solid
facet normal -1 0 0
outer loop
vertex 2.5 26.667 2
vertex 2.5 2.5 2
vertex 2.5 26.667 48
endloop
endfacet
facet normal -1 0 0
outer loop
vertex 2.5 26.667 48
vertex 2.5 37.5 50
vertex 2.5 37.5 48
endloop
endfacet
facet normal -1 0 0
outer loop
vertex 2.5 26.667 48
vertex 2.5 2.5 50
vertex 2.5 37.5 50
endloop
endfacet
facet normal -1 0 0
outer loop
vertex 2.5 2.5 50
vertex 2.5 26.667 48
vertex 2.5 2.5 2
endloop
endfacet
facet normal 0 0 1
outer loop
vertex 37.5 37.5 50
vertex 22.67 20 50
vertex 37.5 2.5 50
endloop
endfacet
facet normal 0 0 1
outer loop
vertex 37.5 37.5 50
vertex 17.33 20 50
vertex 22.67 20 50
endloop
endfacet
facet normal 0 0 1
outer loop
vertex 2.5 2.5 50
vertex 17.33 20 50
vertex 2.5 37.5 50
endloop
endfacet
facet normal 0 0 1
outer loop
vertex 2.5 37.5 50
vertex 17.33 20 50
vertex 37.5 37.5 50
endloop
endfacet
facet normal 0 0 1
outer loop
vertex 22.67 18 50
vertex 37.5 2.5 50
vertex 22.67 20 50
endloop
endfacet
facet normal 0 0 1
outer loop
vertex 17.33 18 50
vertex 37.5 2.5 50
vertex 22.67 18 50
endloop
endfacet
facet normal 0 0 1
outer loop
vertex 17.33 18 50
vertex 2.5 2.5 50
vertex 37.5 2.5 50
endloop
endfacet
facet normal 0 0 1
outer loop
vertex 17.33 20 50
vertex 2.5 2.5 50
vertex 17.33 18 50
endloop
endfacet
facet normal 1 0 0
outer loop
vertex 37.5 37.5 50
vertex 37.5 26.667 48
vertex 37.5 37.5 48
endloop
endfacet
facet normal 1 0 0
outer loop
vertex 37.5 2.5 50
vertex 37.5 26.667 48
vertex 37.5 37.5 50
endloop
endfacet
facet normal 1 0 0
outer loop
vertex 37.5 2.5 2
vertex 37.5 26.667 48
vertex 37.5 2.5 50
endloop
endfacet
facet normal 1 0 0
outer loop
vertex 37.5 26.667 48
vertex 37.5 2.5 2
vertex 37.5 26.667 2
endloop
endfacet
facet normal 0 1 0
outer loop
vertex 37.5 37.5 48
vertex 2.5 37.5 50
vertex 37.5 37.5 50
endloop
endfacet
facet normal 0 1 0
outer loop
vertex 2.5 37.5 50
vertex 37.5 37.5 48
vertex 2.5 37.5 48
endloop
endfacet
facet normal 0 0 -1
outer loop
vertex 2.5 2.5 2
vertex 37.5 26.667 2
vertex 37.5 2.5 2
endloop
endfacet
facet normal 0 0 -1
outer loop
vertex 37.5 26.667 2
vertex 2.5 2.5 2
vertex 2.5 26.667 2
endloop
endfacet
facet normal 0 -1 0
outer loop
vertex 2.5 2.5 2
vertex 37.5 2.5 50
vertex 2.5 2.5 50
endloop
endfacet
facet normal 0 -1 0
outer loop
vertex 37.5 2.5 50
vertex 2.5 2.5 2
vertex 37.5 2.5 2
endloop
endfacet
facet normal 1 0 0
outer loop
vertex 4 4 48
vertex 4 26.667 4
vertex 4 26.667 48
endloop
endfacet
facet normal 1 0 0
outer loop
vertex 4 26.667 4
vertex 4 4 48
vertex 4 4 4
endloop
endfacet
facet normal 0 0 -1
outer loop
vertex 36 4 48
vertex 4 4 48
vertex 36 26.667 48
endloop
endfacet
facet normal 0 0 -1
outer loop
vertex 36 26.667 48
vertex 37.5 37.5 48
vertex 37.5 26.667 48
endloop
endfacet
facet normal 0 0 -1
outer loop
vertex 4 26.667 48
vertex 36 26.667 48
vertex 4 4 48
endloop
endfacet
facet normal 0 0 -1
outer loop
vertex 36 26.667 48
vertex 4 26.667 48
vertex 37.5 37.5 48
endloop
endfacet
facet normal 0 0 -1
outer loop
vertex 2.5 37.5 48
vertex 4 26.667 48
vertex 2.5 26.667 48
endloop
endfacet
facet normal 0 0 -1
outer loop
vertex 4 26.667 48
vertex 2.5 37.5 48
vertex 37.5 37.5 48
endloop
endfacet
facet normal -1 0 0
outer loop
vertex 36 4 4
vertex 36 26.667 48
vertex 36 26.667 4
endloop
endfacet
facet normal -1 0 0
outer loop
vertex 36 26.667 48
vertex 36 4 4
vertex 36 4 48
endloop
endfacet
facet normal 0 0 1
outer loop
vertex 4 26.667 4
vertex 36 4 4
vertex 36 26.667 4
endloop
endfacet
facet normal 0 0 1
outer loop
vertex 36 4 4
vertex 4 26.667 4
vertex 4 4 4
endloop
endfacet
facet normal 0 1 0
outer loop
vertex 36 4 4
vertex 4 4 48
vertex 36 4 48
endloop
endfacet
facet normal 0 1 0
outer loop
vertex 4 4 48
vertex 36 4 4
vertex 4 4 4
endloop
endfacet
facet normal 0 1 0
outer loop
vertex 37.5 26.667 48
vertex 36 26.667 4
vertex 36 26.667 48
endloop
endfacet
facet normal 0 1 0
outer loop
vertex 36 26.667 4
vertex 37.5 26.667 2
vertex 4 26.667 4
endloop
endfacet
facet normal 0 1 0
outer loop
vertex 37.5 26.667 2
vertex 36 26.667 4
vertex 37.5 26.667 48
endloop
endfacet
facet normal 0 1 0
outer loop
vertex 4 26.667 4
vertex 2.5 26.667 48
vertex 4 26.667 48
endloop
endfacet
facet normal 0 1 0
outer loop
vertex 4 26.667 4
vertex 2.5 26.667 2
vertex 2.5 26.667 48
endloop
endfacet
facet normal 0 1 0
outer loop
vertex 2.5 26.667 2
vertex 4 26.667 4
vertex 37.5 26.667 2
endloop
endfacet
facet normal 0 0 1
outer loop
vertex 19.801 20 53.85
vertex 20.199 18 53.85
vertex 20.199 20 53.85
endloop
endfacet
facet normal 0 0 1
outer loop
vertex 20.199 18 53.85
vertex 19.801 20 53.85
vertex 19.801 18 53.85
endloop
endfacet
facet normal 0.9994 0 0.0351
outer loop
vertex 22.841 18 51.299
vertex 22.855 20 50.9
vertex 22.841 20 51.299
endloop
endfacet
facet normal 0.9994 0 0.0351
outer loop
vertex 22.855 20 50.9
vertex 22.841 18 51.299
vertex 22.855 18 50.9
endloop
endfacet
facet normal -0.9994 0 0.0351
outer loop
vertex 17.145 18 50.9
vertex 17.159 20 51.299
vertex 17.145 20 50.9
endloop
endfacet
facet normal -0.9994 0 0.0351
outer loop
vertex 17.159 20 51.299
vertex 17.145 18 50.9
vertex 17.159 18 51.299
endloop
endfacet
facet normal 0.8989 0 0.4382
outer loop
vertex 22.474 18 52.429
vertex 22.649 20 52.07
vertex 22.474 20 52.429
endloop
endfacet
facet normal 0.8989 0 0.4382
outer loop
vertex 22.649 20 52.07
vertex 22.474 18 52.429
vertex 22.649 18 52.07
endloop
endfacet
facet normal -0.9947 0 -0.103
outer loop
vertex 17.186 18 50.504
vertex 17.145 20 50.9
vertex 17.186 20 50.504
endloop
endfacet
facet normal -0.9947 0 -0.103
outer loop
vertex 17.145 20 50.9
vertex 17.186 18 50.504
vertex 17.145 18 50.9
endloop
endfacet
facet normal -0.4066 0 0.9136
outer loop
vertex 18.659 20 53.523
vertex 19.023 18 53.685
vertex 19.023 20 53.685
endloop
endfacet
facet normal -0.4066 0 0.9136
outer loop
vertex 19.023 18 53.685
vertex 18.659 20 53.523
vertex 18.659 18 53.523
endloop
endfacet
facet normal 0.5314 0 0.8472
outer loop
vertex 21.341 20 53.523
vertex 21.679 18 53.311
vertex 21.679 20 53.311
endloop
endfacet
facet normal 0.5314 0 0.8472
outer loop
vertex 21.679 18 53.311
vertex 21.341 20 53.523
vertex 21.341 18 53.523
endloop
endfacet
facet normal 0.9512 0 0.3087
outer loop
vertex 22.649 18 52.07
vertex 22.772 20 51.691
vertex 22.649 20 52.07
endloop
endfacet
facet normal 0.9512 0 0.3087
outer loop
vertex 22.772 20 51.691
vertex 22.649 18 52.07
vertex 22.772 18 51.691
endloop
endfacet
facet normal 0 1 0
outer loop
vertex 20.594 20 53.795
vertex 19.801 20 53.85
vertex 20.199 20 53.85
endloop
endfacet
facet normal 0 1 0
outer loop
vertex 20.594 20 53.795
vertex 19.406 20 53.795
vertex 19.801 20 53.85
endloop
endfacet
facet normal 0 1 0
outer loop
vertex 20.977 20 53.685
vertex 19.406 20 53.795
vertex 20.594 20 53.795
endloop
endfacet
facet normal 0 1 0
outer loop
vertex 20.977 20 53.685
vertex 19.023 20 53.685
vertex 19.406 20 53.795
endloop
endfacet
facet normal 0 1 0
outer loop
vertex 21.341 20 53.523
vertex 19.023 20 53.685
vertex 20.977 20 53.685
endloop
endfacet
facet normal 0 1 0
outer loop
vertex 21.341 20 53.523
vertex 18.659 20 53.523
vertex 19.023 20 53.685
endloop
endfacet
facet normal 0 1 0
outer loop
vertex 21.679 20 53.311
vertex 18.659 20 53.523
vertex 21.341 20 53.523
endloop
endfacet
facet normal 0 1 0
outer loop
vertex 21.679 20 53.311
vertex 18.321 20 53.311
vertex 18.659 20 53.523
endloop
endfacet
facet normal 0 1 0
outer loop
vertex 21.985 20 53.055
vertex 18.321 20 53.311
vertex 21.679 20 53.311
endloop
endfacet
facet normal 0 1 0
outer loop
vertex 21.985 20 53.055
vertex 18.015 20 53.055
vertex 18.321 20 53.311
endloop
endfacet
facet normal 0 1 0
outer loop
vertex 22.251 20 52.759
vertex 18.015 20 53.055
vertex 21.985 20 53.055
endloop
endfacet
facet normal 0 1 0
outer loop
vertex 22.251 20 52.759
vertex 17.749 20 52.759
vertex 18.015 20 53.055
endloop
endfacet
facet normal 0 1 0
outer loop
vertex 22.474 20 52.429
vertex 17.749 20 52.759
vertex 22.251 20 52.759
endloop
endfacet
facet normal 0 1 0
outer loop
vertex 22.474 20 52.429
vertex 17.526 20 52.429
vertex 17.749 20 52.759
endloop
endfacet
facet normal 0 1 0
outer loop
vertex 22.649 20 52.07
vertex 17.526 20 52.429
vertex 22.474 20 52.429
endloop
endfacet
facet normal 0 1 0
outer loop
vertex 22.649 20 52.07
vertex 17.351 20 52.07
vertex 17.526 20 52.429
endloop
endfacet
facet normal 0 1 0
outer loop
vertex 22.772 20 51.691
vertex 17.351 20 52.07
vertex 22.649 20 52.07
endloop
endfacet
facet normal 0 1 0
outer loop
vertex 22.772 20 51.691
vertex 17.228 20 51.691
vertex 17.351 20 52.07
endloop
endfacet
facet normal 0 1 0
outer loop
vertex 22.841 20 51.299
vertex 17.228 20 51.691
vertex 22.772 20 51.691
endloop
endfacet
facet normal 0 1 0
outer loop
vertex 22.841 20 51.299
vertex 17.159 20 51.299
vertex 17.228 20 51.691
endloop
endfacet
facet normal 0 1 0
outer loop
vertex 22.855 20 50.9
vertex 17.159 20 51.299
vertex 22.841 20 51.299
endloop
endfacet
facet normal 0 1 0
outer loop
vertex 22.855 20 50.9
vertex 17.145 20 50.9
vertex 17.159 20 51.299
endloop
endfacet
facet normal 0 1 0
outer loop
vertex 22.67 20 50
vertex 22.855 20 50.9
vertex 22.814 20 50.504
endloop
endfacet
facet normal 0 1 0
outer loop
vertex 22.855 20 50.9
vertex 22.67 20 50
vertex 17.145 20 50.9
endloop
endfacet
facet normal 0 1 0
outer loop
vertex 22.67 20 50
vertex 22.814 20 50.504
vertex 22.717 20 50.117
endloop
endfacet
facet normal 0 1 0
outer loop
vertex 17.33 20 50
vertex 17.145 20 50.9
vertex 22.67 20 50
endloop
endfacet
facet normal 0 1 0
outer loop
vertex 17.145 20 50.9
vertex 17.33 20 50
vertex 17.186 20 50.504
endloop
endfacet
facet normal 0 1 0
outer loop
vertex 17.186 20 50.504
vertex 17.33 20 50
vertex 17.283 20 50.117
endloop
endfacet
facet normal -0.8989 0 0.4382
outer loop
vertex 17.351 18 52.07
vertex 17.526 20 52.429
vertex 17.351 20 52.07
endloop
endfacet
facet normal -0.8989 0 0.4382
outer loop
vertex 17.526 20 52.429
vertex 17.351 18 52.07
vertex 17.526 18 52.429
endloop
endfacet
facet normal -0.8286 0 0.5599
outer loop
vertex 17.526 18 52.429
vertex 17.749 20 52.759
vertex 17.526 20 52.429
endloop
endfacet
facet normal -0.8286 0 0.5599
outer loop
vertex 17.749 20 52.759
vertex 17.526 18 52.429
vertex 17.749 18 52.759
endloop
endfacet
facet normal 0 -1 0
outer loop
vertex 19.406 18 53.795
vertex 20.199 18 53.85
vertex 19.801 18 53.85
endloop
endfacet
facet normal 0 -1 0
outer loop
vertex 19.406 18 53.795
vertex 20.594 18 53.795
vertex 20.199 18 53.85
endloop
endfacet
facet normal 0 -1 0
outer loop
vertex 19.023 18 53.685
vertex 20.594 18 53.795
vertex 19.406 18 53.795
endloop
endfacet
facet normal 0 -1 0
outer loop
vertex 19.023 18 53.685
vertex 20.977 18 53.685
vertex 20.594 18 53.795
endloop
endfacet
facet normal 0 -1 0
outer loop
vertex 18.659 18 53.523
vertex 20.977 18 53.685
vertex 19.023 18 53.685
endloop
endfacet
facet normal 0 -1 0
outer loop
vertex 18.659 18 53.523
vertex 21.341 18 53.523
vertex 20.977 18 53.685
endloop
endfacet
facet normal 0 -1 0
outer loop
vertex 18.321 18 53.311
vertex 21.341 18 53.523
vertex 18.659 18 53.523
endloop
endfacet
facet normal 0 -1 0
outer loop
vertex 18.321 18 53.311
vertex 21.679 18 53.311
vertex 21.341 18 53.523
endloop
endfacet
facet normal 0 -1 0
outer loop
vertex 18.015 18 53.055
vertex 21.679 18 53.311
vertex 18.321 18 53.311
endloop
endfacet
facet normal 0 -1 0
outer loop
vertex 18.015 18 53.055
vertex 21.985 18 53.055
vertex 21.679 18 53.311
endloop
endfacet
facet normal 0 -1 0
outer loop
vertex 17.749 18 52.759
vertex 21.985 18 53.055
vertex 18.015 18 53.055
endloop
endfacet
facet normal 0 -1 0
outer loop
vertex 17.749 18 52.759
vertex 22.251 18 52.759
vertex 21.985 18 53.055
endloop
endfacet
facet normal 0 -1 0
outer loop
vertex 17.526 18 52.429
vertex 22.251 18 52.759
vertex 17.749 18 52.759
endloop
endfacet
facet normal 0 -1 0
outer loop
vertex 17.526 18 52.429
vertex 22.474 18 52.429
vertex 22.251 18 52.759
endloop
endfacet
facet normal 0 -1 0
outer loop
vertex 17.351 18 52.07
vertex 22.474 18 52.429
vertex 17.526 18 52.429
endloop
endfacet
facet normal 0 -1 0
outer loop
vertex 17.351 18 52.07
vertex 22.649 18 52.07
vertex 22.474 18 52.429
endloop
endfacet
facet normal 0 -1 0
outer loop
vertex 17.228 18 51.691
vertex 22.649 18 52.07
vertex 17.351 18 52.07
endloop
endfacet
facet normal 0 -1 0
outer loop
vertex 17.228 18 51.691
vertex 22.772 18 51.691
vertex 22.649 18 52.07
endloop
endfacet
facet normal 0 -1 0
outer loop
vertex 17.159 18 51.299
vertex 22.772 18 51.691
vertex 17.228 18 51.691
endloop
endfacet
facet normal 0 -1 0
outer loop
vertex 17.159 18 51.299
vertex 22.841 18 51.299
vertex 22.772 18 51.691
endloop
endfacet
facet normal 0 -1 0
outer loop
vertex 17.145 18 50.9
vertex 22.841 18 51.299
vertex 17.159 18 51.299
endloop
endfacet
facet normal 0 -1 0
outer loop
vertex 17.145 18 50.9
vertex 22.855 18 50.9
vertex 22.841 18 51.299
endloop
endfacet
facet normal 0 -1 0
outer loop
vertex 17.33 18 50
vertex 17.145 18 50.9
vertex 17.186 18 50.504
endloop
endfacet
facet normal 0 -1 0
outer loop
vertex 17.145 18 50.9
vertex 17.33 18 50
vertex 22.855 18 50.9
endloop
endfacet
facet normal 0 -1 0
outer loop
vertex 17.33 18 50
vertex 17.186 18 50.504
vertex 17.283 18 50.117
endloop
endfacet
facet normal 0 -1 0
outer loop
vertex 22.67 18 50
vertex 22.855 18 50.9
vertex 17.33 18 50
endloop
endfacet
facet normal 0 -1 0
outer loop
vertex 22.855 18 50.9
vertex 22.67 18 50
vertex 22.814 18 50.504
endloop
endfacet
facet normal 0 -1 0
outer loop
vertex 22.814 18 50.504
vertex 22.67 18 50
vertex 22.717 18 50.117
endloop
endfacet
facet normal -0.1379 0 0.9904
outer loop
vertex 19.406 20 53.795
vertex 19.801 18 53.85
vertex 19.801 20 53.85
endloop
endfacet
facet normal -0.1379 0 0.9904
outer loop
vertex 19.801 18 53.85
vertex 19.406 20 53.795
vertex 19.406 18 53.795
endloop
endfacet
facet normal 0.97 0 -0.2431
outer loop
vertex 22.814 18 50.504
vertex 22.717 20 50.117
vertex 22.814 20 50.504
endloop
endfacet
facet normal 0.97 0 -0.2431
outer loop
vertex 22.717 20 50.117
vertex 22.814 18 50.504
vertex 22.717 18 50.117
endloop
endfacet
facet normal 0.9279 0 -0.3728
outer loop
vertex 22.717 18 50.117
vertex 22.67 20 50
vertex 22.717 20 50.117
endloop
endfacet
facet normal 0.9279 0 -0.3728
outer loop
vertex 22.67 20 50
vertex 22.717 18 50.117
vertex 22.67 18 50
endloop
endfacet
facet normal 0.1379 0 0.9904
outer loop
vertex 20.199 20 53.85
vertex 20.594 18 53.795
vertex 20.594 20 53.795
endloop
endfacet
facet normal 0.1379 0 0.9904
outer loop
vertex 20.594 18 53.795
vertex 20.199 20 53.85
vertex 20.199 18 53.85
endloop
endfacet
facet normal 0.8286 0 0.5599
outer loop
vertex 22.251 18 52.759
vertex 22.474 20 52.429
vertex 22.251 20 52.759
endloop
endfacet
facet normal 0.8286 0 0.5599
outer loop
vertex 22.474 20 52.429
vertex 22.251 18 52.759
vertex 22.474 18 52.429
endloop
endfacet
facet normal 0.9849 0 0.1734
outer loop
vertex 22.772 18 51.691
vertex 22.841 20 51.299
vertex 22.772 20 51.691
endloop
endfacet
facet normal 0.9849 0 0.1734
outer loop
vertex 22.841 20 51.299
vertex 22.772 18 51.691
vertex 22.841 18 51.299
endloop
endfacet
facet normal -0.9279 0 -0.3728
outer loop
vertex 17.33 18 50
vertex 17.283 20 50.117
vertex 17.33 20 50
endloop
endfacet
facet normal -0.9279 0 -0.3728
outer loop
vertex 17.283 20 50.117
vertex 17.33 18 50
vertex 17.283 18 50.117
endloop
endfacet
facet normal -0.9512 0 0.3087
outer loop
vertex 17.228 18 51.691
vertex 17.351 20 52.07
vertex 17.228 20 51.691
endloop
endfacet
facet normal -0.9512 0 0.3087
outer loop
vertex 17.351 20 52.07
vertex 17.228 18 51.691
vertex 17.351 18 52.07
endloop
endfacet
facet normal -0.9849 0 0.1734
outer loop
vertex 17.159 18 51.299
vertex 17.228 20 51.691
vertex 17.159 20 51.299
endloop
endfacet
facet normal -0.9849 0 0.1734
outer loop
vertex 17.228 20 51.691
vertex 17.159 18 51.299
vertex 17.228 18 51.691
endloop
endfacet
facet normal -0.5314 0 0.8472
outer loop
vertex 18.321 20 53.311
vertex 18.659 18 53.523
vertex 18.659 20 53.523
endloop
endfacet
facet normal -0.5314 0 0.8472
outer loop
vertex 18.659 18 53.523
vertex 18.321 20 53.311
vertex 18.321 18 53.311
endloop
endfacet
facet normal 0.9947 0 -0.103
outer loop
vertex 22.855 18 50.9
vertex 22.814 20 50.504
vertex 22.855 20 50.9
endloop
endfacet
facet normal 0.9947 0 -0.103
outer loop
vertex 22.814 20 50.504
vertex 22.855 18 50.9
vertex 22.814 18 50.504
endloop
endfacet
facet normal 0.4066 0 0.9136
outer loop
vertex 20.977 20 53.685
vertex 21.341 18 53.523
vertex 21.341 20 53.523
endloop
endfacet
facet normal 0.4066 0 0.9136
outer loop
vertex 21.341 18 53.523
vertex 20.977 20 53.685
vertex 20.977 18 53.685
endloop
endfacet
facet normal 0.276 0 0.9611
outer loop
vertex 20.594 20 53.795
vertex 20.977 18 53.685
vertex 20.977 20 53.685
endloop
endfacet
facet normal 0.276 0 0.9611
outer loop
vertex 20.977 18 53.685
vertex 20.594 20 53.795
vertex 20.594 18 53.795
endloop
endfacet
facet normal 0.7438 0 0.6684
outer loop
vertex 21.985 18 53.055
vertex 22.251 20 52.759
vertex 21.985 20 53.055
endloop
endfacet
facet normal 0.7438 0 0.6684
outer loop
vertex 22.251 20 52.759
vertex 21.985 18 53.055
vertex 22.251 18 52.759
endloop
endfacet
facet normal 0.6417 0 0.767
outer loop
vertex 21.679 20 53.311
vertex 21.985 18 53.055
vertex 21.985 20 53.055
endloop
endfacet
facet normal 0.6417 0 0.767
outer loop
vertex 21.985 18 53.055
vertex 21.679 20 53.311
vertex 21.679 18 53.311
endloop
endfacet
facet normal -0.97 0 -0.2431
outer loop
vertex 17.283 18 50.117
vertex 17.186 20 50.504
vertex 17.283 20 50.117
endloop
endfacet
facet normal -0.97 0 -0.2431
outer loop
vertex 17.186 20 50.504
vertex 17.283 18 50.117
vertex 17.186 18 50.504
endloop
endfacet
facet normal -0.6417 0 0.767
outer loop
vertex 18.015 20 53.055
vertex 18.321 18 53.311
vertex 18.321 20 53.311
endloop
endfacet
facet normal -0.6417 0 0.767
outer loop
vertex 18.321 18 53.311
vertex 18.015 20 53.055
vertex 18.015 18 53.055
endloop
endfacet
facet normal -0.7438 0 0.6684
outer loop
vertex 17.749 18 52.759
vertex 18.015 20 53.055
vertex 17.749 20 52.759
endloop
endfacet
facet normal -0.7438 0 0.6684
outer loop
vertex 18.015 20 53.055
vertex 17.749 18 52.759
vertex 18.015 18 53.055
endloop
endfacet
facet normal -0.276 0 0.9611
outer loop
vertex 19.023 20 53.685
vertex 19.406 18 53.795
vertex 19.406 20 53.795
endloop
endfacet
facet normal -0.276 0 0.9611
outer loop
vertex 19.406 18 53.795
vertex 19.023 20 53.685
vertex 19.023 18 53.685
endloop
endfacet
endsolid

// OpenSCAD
$fa = 1;
$fs = 0.4;

height = 50;
Xsize = 40;
Ysize = 40;

module box() {
    difference() {
        cube([Xsize, Ysize, height - 7]);
        
        translate([2, 2, 2])
            cube([Xsize - 4, Ysize - 4, height - 7]);
    }

    difference() {
        translate([1, 1, height - 7])
            cube([Xsize - 2, Ysize - 2, 7]);
        
        translate([2, 2, height - 8])
            cube([Xsize - 4, Ysize - 4, 9]);
    }
}

/*
difference(){
    box();

    translate([-10, Ysize / 3 * 2, 0])
        cube([Xsize * 2, Ysize, height]);
}
*/

difference(){
    translate([2.5, 2.5, 2])
        cube([Xsize - 5, Ysize - 5, height - 2]);
    
    translate([4, 4, 4])
        cube([Xsize - 8, Ysize - 7, height - 6]);

    translate([-10, Ysize / 3 * 2, 0])
        cube([Xsize * 2, Ysize, height - 2]);
/*    
    translate([Xsize / 2, Ysize + Ysize / 4, height - 2])
        rotate([0, 0, 0])
            cylinder(2, Xsize / 2, Xsize / 2);
*/    
}

translate([Xsize / 2, Ysize / 2, height + 1])
    rotate([90, 90, 0])
        cylinder(2, Xsize / 14, Xsize / 14);
